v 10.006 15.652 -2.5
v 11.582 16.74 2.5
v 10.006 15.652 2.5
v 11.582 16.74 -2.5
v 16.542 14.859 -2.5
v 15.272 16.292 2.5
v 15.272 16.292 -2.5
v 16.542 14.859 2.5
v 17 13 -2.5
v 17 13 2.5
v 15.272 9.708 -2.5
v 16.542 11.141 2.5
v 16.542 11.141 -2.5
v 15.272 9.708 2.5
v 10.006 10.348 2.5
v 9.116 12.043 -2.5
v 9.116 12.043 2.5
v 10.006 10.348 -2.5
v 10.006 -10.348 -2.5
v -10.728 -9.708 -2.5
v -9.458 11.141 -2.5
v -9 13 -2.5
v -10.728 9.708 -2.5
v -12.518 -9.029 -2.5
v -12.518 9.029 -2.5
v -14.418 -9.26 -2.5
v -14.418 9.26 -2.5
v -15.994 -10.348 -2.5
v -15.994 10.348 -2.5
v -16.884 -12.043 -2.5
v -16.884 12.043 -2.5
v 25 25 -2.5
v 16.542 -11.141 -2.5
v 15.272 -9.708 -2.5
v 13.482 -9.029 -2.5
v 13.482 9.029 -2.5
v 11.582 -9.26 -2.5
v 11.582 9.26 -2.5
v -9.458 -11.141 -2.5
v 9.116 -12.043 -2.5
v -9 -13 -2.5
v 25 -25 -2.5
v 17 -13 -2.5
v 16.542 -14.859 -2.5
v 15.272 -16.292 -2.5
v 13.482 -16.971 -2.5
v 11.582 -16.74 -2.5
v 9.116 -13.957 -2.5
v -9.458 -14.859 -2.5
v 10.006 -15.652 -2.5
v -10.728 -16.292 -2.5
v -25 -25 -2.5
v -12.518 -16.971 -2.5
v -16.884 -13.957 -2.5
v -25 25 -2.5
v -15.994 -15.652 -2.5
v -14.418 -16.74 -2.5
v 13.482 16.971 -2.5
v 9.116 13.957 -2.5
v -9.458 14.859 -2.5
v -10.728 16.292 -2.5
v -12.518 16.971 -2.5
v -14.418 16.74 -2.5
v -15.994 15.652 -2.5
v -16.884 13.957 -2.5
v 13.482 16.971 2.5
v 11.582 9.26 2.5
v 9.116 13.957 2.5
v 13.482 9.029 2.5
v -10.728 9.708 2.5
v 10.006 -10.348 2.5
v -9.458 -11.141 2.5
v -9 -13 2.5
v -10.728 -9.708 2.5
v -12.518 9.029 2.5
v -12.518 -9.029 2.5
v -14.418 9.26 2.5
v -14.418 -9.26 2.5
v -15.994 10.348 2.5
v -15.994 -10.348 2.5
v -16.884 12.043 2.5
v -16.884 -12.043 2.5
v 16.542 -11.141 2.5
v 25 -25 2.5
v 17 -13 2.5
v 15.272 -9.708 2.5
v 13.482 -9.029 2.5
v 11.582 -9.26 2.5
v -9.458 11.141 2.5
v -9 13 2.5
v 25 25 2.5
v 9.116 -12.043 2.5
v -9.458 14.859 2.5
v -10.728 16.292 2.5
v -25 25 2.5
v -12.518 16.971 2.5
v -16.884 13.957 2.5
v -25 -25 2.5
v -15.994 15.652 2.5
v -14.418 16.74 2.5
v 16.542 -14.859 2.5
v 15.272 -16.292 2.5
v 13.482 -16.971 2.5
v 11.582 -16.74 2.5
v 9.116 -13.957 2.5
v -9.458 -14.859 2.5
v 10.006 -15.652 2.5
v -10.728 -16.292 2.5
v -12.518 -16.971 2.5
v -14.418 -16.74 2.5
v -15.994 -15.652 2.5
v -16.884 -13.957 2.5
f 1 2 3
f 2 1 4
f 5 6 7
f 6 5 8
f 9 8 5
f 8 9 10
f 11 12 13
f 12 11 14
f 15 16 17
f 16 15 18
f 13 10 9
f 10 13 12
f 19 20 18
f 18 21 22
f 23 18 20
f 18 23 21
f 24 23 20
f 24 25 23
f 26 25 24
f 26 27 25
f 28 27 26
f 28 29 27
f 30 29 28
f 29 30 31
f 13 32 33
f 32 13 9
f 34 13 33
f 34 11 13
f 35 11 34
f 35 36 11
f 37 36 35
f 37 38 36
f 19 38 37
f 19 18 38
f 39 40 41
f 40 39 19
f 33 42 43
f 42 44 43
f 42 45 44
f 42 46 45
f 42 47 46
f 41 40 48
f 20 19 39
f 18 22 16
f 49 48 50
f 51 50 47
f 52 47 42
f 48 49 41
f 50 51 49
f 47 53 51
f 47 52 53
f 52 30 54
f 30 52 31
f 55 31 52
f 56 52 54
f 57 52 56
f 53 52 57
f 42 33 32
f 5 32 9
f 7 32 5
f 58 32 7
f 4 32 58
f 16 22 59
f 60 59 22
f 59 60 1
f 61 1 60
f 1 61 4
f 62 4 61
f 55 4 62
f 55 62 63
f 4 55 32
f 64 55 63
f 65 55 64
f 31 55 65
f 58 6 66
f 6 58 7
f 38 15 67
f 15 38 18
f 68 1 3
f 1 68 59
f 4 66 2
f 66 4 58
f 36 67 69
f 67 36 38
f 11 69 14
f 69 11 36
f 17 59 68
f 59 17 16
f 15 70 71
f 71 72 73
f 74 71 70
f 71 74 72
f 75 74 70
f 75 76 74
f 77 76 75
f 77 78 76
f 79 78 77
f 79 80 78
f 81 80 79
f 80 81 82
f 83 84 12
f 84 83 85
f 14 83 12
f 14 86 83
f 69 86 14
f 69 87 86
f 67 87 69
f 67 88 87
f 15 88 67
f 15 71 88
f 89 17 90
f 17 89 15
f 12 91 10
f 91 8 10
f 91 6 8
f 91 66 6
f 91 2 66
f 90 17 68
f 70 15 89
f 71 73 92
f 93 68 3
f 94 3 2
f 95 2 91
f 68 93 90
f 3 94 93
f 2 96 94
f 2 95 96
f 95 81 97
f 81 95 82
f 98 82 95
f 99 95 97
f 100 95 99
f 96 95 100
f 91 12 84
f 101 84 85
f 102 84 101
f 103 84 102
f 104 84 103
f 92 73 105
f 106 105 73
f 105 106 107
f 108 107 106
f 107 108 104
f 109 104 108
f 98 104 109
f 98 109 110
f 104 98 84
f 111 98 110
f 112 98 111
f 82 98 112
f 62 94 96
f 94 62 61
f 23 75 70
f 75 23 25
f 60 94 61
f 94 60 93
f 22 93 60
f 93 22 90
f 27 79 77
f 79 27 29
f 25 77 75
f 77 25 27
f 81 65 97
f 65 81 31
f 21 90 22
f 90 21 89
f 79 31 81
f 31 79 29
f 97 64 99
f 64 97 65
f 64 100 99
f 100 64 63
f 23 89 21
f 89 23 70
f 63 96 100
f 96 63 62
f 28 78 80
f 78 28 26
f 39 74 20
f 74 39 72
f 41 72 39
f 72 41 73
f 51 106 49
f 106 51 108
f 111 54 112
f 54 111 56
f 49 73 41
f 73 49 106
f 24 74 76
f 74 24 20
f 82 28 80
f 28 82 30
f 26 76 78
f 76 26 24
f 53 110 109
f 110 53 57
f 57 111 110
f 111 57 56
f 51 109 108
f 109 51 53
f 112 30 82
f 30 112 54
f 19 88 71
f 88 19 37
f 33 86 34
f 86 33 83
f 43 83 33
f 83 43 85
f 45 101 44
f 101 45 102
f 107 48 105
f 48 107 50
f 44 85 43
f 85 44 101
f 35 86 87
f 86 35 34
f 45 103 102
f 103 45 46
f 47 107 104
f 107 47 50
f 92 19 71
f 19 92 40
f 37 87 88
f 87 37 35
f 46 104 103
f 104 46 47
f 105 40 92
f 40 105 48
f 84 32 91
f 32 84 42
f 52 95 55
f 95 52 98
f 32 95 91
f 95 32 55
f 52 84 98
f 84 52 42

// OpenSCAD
// Generated by SolidPython 1.1.3 on 2022-11-24 15:47:28


difference() {
	cube(center = true, size = [50, 50, 5]);
	union() {
		translate(v = [13.0000000000, 13.0000000000]) {
			cylinder(center = true, h = 5, r = 4.0000000000);
		}
		translate(v = [-13.0000000000, 13.0000000000]) {
			cylinder(center = true, h = 5, r = 4.0000000000);
		}
		translate(v = [-13.0000000000, -13.0000000000]) {
			cylinder(center = true, h = 5, r = 4.0000000000);
		}
		translate(v = [13.0000000000, -13.0000000000]) {
			cylinder(center = true, h = 5, r = 4.0000000000);
		}
	}
}
/***********************************************
*********      SolidPython code:      **********
************************************************
 
import solid
import pudb
from solid.utils import *
import viewscad
import subprocess
import os
import os.path as osp
import math
r = viewscad.Renderer(width=800, height=800)
def debug(model,f_name,path="/home/ts/code/projects/mfd/designs/debug"):
    solid.scad_render_to_file(model,osp.join(path,f_name)+".scad")
#generate position list of wells using offset from center
wells_pos_from_center_4 = lambda offset: [[-offset,offset],
                                        [offset, offset],
                                        [-offset, -offset],
                                        [offset, -offset]]
#wells_pos_from_center_2 = lambda offset: [[0,offset],
#                                        [0, -offset]]
wells_pos_from_center_2 = lambda offset: [[offset,0],
                                        [-offset,0]]

def wells_top_bottom(radius,height=None, positions = None, dxf = False):
    if positions is None:
        offset = radius+radius/2.0
        positions = wells_pos_from_center_2(offset)
    if dxf or (height is None):
        height = 0
    wells = []
    for position in positions:
        #make circle if making dxf
        if dxf:
            well_shape = solid.circle(r=radius, segments=64)
            well_shape = solid.translate([position[0],position[1]])(well_shape)
        #if stl make cylinder
        else:
            well_shape = solid.cylinder(r=radius, h=height, segments=64, center = True)
            well_shape = solid.translate([position[0],position[1],height/2.0])(well_shape)
        wells.append(well_shape)
    return  union()(*wells)

#place wells in four corners 
def four_corner(radius,height=None, positions = None, dxf = False):
    #if well pos not specified set
    #to equally spaced by half radius
    if positions is None:
        offset = radius+radius/2.0
        positions = wells_pos_from_center_4(offset)
    if dxf or (height is None):
        height = 0
    #make wells at positions with specified radius and height
    wells = []
    for position in positions:
        #make circle if making dxf
        if dxf:
            well_shape = solid.circle(r=radius, segments=64)
            well_shape = solid.translate([position[0],position[1]])(well_shape)
        #if stl make cylinder
        else:
            well_shape = solid.cylinder(r=radius, h=height, segments=64, center = True)
            well_shape = solid.translate([position[0],position[1],height/2.0])(well_shape)
        wells.append(well_shape)
    return  union()(*wells)

#generate channels 
def make_channels(length,width,height=0,num_chans=1,max_chans=None,spacing=None, dxf = False,
                  rotate_channels=False):
    if dxf or (height is None):
        height = 0
    #if channel gap not defined, is equal to
    if spacing is None: spacing = width
    #calculate number of channels if fitting max num within given width
    if not max_chans is None:
        import math
        num_chans = math.floor((max_chans-spacing)/(width+spacing))
    #get total width of channel section  
    total_width = (width*num_chans)+(spacing*(num_chans-1))

    #make template channel
    #if rotate_channels: width, length = length, width
    if dxf:
        channel_t = solid.square([length,width],center = True)
    else:
        channel_t = solid.cube([length,width,height], center = True)

    #if number channels is even, offset the first channel to center its gap
    if num_chans % 2 == 0: centering = -(width/2.0+spacing/2.0)
    else: centering = 0
    #move template channel up to align bottom at z = 0 
    #and offset center if necessary
    if dxf:
        channel_t = solid.translate([0,centering])(channel_t)
    else:
        channel_t = solid.translate([0,centering,height/2.0])(channel_t)

    #if rotate_channels: length,width = width,length
    #start making the channels
    channels = []
    for i in range(num_chans):
        #if i=0 there is no translation
        #if i=1, we make the first channel adjacent to second
        direction = i

        #if i>=1, we add channels alternating left and right
        if i >= 1:
            direction = -(i/2.0)
            if i % 2 == 1: direction = (-direction)+0.5
                
        #make channel at right position and add it to channel list
        translation_coords = [0,direction*(width+spacing)]
        #if rotate_channels: translation_coords = [direction*(width+spacing),0]
        if dxf:
            channel = solid.translate(translation_coords)(channel_t)
        else:
            channel = solid.translate([*translation_coords,0])(channel_t)
        channels.append(channel)
    
    #group all channels as one object
    channels = union()(*channels)
    #compute the x,y,z dimensions in order to pass as arguments 
    #for construction of other parts of device (such as the chambers)
    measurements = {'x':(length/2.0,-length/2.0),
                    'y':(total_width/2.0,-total_width/2.0)}
    if not dxf:
        measurements['z'] = (height,0)
    if rotate_channels:
        channels = solid.rotate(90)(channels)
        measurements['x'],measurements['y']=measurements['y'],measurements['x']
    return channels,measurements

def make_chambers(msrs,height=None,extra=0,len_until=None,width=None, dxf = False):
    #computes x,y,z length
    total = lambda x : abs(x[0]) + abs(x[1])
    
    #if specific height if specified
    #otherwise use same height as channels
    if dxf:
        pass
    elif not height is None:
        msrs['z'] = (height,0)
    else:
        msrs['z'] = (0,0)
        
    #make copy of measurements from channels to modify chamber dimensions 
    #and add length to chambers as specified
    chamber_dims = msrs.copy()
    #calculate length of chamber to reach specified offset
    if not len_until is None:
        chamber_len = len_until-(msrs['x'][0])
    #or add specified length to channel length (if not specified, adds 0)
    else:
        chamber_len = msrs['x'][0]+extra
    #set the chamber length based 
    chamber_dims['x'] = (chamber_len/2.0,-(chamber_len/2.0))
    #compute final dimensions of chamber
    if not width is None:
        chamber_dims['y'] = (width/2.0,-width/2.0)
    chamber_dims = [total(size) for size in chamber_dims.values()]
        
    #calculate chamber translation offset to place adjacent to channels
    chamber_trslt = msrs['x'][0]+(chamber_len/2.0)
    #compute chamber translation coordinates to align with channels
    #x = 1 moves chamber above channels
    #x = -1 moves chamber below channels
    if dxf:
        trslt = lambda x : [x*(chamber_trslt),0]
    else:
        trslt = lambda x : [x*(chamber_trslt),0,msrs['z'][0]/2.0]
    
    #function to make chamber at top or at bottom 
    if dxf:
        move = lambda x : solid.translate(trslt(x))(solid.square(chamber_dims, center = True) )
    else:
        move = lambda x : solid.translate(trslt(x))(solid.cube(chamber_dims,center = True))
    #make top and bottom chambers and return them as grouped
    top = move(1)
    bottom = move(-1)
    #chambers=solid.rotate(90)(solid.union()(top,bottom))
    chambers=(solid.union()(top,bottom))

    return chambers

#create alignment features 
def alignment_features(unit,dims,grid_size, mask_size = None, alignment = "hollow", units_from_center = (2.5,2.5), corner_len=None):
    width = grid_size[0]*dims[0]
    length = grid_size[1]*dims[1]
    if mask_size is None and corner_len is None:
        corner_len = (dims[0] + dims[1]) /2 / 8
    corner = lambda thickness_div : solid.union()( solid.square([corner_len,corner_len/thickness_div],center=False), solid.square([corner_len/thickness_div,corner_len],center=False) )
    
    def make_full(thickness_div):
        thickness = corner_len/thickness_div
        tr = solid.translate([0, 0, 0 ])(solid.rotate(180)(corner(thickness_div)))
        tr = solid.translate([thickness/2,thickness/2,0])(tr)
        bl = solid.translate([0, 0, 0 ])(solid.rotate(0)(corner(thickness_div)))
        bl = solid.translate([-thickness/2,-thickness/2,0])(bl)
        return solid.union()(tr,bl)
    
    def make_hollow(thickness_div):
        thickness = corner_len/(thickness_div/2)
        inner = make_full(thickness_div)
        outer = make_full(thickness_div/2)
        hollow = outer - inner 
        return hollow
    
    center = (width /2 , length/2)
    mask_pos = lambda x,y : (center[0] + x*(float(units_from_center[0])*dims[0]), center[1] + y*(float(units_from_center[1])*dims[1]))
    positions = []
    positions.append(mask_pos(1,0))
    positions.append(mask_pos(0,1))
    positions.append(mask_pos(-1,0))
    positions.append(mask_pos(0,-1))
    make_mask = lambda mtype : make_hollow(8) if mtype == "hollow" else make_full(8)
    masks = [ solid.translate([*position,0])(make_mask(alignment)) for position in positions]
    
    solid.scad_render_to_file(solid.union()(*masks),"./designs/open_chamber/masks.scad")
    #return unit - solid.union()(*masks)
    return solid.union()(*masks,unit)

def create_outline(thickness, array, dims, grid_size,):
    width = grid_size[0]*dims[0] + thickness *2
    length = grid_size[1]*dims[1] + thickness *2
    outer = solid.translate([-thickness, -thickness,0])(solid.square([width, length]))
    return outer-array

def create_wall(wall_thickness, outline_thickness, dims, grid_size, wall_height = 2000, dxf = False):
    inner_width = grid_size[0]*dims[0] + outline_thickness *2
    inner_length = grid_size[1]*dims[1] + outline_thickness *2
    outer_width = inner_width + wall_thickness * 2
    outer_length = inner_length + wall_thickness * 2
    outer_pos_x = -outline_thickness-wall_thickness
    outer_pos_y = -outline_thickness-wall_thickness
    inner_pos_x = -outline_thickness
    inner_pos_y = -outline_thickness
    if dxf:
        inner_wall = solid.translate([inner_pos_x,
                                      inner_pos_y,
                                      0])(solid.square([inner_width, inner_length]))
        outer_wall = solid.translate([outer_pos_x,
                                      outer_pos_y,
                                      0])(solid.square([outer_width, outer_length]))

        return outer_wall-inner_wall
    else:
        inner_wall = solid.translate([inner_pos_x,
                                      inner_pos_y,
                                      0])(solid.cube([inner_width, inner_length,wall_height]))
        outer_wall = solid.translate([outer_pos_x,
                                      outer_pos_y,
                                      0])(solid.cube([outer_width, outer_length,wall_height]))

        return outer_wall-inner_wall, {'wall_height': wall_height,
                                       'wall_thickness': wall_thickness,
                                       'inner_width':inner_width,
                                       'inner_length': inner_length,
                                       'outer_width': outer_width,
                                       'outer_length': outer_length,
                                       'outer_pos_x' : outer_pos_x,
                                       'outer_pos_y' : outer_pos_y,
                                       'inner_pos_x' : inner_pos_x,
                                       'inner_pos_y' : inner_pos_y}

def create_thicker_wall(wall_thickness, outer_wall_offset, wall_dims, dims, grid_size, height_start = .2, height_end=2, dxf = False):
    addon_wall,thicker_wall_dims = create_wall(wall_thickness, outer_wall_offset, dims, grid_size, wall_height=height_end-height_start, dxf = False)
    addon_wall = solid.translate([0,0,height_start])(addon_wall)

    thicker_wall_dims['wall_height'] = height_end
    thicker_wall_dims['wall_thickness'] = wall_dims['wall_thickness'] + wall_thickness
    return addon_wall, thicker_wall_dims
 
def add_lock_to_wall(wall,wall_dims,y_offset = 0,cut_ratio=0.7,L_length=3, gap_ratio=0.05, axis="x",width_ratio=1/2):
    # Makes L shape
    def make_L(max_length,length_thickness,max_width,width_thickness,height,y_offset):
        length = solid.cube([max_length,length_thickness,height])
        width = solid.cube([width_thickness,max_width,height])
        width = solid.translate([max_length-(width_thickness),0,0])(width)
        L = solid.union()(width,length)
        debug(L,"L")
        if axis == "x":
            L = solid.rotate(-90)(L)
            L = solid.translate([0,max_length,0])(L)
        else:
            L = solid.rotate(-180)(L)
            L = solid.translate([max_length,max_width,0])(L)
        return solid.translate([0,0,y_offset])(L)
    
    lock_length = L_length
    lock_width = wall_dims['wall_thickness']*width_ratio
    lock_length_thickness = lock_width/2
    lock_width_thickness = lock_width/2
    L_lock = make_L(lock_length,lock_length_thickness,lock_width,lock_width_thickness, wall_dims['wall_height']-y_offset, y_offset)
    
    margin_space = lock_length - lock_length*(1-gap_ratio)
    key_length = lock_length-margin_space
    key_length_thickness = lock_length_thickness-(margin_space*2)
    key_width = lock_width-(margin_space*2)
    key_width_thickness = lock_width_thickness-(margin_space*2)
    L_key = make_L(key_length,key_length_thickness,key_width,key_width_thickness, wall_dims['wall_height']-y_offset, y_offset)
    L_key = solid.translate([margin_space,margin_space,0])(L_key)
    L = solid.union()(L_lock,L_key)
    debug(L,"L")
    
    #Make cube to be used as negative to split frame in a half
    #Can choose if making left or right negative, specify ratio of split
    def make_negative(right,cut_ratio):
        if axis == "x":
            if right:
                length = wall_dims['outer_length']*(1-cut_ratio)
                pos_x = wall_dims['outer_pos_x']+(wall_dims['outer_length']*cut_ratio)
            else:
                length = wall_dims['outer_length']*(cut_ratio)
                pos_x = wall_dims['outer_pos_x'] 
            negative = solid.cube([wall_dims['outer_width'],length, wall_dims['wall_height']])
            negative = solid.translate([wall_dims['outer_pos_y'],pos_x,0])(negative)
        else:
            if right:
                length = wall_dims['outer_width']*(1-cut_ratio)
                pos_x = wall_dims['outer_pos_y']+(wall_dims['outer_width']*cut_ratio)
            else:
                length = wall_dims['outer_width']*(cut_ratio)
                pos_x = wall_dims['outer_pos_y'] 
            negative = solid.cube([length,wall_dims['outer_length'], wall_dims['wall_height']])
            negative = solid.translate([pos_x,wall_dims['outer_pos_x'],0])(negative)
        return negative, pos_x, length 
                      
    #Make negatives
    negative_right, right_half_pos_x, right_half_length = make_negative(True,cut_ratio)
    negative_left, left_half_pos_x, right_half_length = make_negative(False,cut_ratio)
    #Make halves
    left_half = solid.difference()(wall,negative_right)
    right_half = solid.difference()(wall,negative_left)
    def place_L(L, L_length,L_width):
        #Place L on top wall       
        offset_to_center = (wall_dims['wall_thickness']-L_width)/2
        if axis == "x":
            y_pos_top = (wall_dims['outer_pos_y'] +
                    wall_dims['outer_width'] - 
                    L_width - offset_to_center)
            top_L = solid.translate([y_pos_top,
                                     right_half_pos_x-(L_length),
                                     0])(L)
            #Place L on bottom wall       
            y_pos_bottom = wall_dims['outer_pos_y']+offset_to_center
            bottom_L = solid.translate([y_pos_bottom,
                                        right_half_pos_x-L_length,
                                        0])(L)
        else:
            y_pos_top = (wall_dims['outer_pos_x'] +
                    wall_dims['outer_length'] -
                    (L_width+offset_to_center))
            top_L = solid.translate([right_half_pos_x-L_length,
                                     y_pos_top,
                                     0])(L)
            #Place L on bottom wall       
            y_pos_bottom = wall_dims['outer_pos_y']+offset_to_center
            bottom_L = solid.translate([right_half_pos_x-L_length,
                                        y_pos_bottom,
                                        0])(L)
        return bottom_L, top_L
    #Make complimentary L pieces through union and differences
    #Make Lock
    bottom_L_lock, top_L_lock = place_L(L_lock,L_length,lock_width)
    left_half = solid.difference()(left_half,bottom_L_lock)
    left_half = solid.difference()(left_half,top_L_lock)
    #Make Key
    bottom_L_key, top_L_key = place_L(L_key,L_length,lock_width)
    right_half = solid.union()(right_half,bottom_L_key)
    right_half = solid.union()(right_half,top_L_key)
    return left_half, right_half


#build a row x col grid of containment units
def make_unit_array(unit,dims,grid_size, dxf = False, alignment = None, mask_size = None,
                    units_from_center = None,alignment_offset=None, alignment_mark_size=1):
    units = []
    for col in range(grid_size[1]):
        for row in range(grid_size[0]):
            if dxf:
                units.append(solid.translate([row*dims[0],col*dims[1]])(unit))
            else:
                units.append(solid.translate([row*dims[0],col*dims[1],dims[2]/2.0])(unit))
    array = solid.union()(*units)
    if (not alignment is None) and dxf:
        if not alignment_offset is None:
            array = solid.translate([alignment_offset[0],alignment_offset[1]])(array)
        array = alignment_features(array,dims, grid_size, alignment = alignment, mask_size = None, units_from_center = units_from_center,corner_len=alignment_mark_size)
        if not alignment_offset is None:
            array = solid.translate([-alignment_offset[0],-alignment_offset[1]])(array)
    return array


def make_taylor(wells_pos = wells_pos_from_center_4(2.25), well_rad = 1.5 ,
                well_height = 2, chan_w = 0.01, chan_l = 1, chan_h = 0.010 ,
                chan_gap = 0.040, max_chans = None,num_chans=100, chamber_height  = 0.100,
                columns = 1, rows = 1, chamber_len_until=2.25, add_channels = True, add_wells = True, 
                add_chambers = True, save_path = "./", alignment = None, units_from_center = 2,
                mask_size = None, render_stl = False, outline_thickness = 0.050, dxf = True,
                wall_height = 15, wall_thickness = 0.95, casing_x=9, casing_y=9, casing_z=0,rotate_units=0):

    dims = [casing_x, casing_y, casing_z]
    wells = four_corner(well_rad,well_height, dxf = dxf, positions = wells_pos)
    debug(wells,"wells")
    channels, msrs = make_channels(chan_l,chan_w,chan_h,dxf=dxf, spacing = chan_gap, max_chans=max_chans,num_chans=num_chans)
    debug(channels,"channels")
    chambers = make_chambers(msrs,dxf = dxf, height=chamber_height,len_until=chamber_len_until)
    debug(chambers,"chambers")

    #add together and render
    device_parts = []
    if add_channels:
        device_parts.append(channels)
    if add_wells:
        device_parts.append(wells)
    if add_chambers:
        device_parts.append(chambers)
    device=union()(*device_parts)
    device = rotate(rotate_units)(device)

    device=solid.translate([dims[0]/2.0,dims[1]/2.0,0])(device)
    channels = rotate(rotate_units)(channels)
    channels=solid.translate([dims[0]/2,dims[1]/2,0])(channels)
    chambers_wells = union()(wells,chambers)
    chambers_wells = rotate(rotate_units)(chambers_wells)
    chambers_wells=solid.translate([dims[0]/2,dims[1]/2,0])(chambers_wells)

    file_name = str(rows)+'x'+str(columns)+'_units_'
    grid_size = [rows,columns]

    if alignment:
        alignment="full"
    device = make_unit_array(device,dims,grid_size, dxf=dxf, alignment = alignment,
                                 units_from_center = units_from_center)
    channels = make_unit_array(channels,dims,grid_size, dxf=dxf, alignment = alignment,
                                 units_from_center = units_from_center)
    if alignment=="full":
        alignment="hollow"

    chambers_wells = make_unit_array(chambers_wells,dims,grid_size, dxf=dxf, alignment = alignment,
                                 units_from_center =units_from_center)

    def save_model(model,prefix):
        model_fname = os.path.abspath(save_path+prefix+"_"+file_name+".scad")
        solid.scad_render_to_file(model,model_fname)
        return model_fname

    wells_fname = save_model(wells,"wells")
    channels_fname = save_model(channels,"channels")
    device_fname = save_model(device,"device")
    chambers_wells_fname = save_model(chambers_wells,"chambers_wells")
    return (chambers_wells,chambers_wells_fname), (channels,channels_fname), (device,device_fname)

def make_device(design='open',rows=8,columns=6,wells_pos = 4.5, well_rad=3.2,well_height=0.1,
                chan_l=1,chan_w=0.01,chan_h=0.01,chan_gap=0.015,num_chans=101,dxf=True,save_path="./designs/open_chamber/",
                casing_x=9.0,casing_y=18.0,casing_z=0,rotate_units=90,units_from_center=(3,1),chamber_len_until=4.5,
                chamber_width=None,alignment=True, add_wells=True, add_channels=True,add_chambers=True):

    dims = [casing_x, casing_y, casing_z]
    if design == "open":
        wells_pos=wells_pos_from_center_2(wells_pos)
        wells = wells_top_bottom(well_rad,height=well_height, dxf = dxf, positions = wells_pos)
    elif design == "closed":
        wells_pos=wells_pos_from_center_4(wells_pos)
        wells = four_corner(well_rad,well_height, dxf = dxf, positions = wells_pos)
    else:
        print(design+" is not a valid design.\n Choose valid design: 'open' or 'closed'")
        exit()
    wells = rotate(rotate_units)(wells)
    wells=solid.translate([dims[0]/2,dims[1]/2,0])(wells)



    channels, msrs = make_channels(chan_l,chan_w,chan_h,dxf=dxf, spacing = chan_gap, num_chans=num_chans,rotate_channels=False)
    channels = rotate(rotate_units)(channels)
    channels=solid.translate([dims[0]/2,dims[1]/2,0])(channels)

    chambers=make_chambers(msrs,height=None,extra=0,len_until=chamber_len_until, width=chamber_width,dxf = dxf)
    chambers = rotate(rotate_units)(chambers)
    chambers=solid.translate([dims[0]/2,dims[1]/2,0])(chambers)

    device_parts = []
    if add_channels:
        device_parts.append(channels)
    if add_wells:
        device_parts.append(wells)
    if add_chambers:
        device_parts.append(chambers)
    device = union()(*device_parts)
    #device = rotate(rotate_units)(device)
    #device=solid.translate([dims[0]/2.0,dims[1]/2.0,0])(device)

    chambers_wells = []
    if add_chambers:
        chambers_wells.append(chambers)
    if add_wells:
        chambers_wells.append(wells)
    chambers_wells = union()(*chambers_wells)
    #chambers_wells = union()(wells,chambers)
    #chambers_wells = rotate(rotate_units)(chambers_wells)
    #chambers_wells=solid.translate([dims[0]/2,dims[1]/2,0])(chambers_wells)

    file_name = str(rows)+'x'+str(columns)+'_units_'

    grid_size = [rows,columns]
    if alignment:
        alignment="full"
    device = make_unit_array(device,dims,grid_size, dxf=dxf, alignment = alignment,
                                 units_from_center = units_from_center)
    channels = make_unit_array(channels,dims,grid_size, dxf=dxf, alignment = alignment,
                                 units_from_center = units_from_center)
    if alignment=="full":
        alignment="hollow"

    chambers_wells = make_unit_array(chambers_wells,dims,grid_size, dxf=dxf, alignment = alignment,
                                 units_from_center =units_from_center)

    def save_model(model,prefix):
        model_fname = os.path.abspath(save_path+prefix+"_"+file_name+".scad")
        solid.scad_render_to_file(model,model_fname)
        return model_fname

    wells_fname = save_model(wells,"wells")
    channels_fname = save_model(channels,"channels")
    device_fname = save_model(device,"device")
    chambers_wells_fname = save_model(chambers_wells,"chambers_wells")
    return (chambers_wells,chambers_wells_fname), (channels,channels_fname), (device,device_fname)


def make_open_chamber(rows=8,columns=6,wells_pos = wells_pos_from_center_2(4.5), well_rad=3.2,well_height=0.1,
                      chan_l=1,chan_w=0.01,chan_h=0.01,chan_gap=0.015,num_chans=101,dxf=True,save_path="./designs/open_chamber/",
                      casing_x=9.0,casing_y=18.0,casing_z=0,rotate_units=90,units_from_center=(3,1),chamber_len_until=4.5,
                      chamber_width=None,alignment=True, add_wells=True, add_channels=True,add_chambers=True):

    dims = [casing_x, casing_y, casing_z]
    wells = wells_top_bottom(well_rad,height=well_height, dxf = dxf, positions = wells_pos)
    channels, msrs = make_channels(chan_l,chan_w,chan_h,dxf=dxf, spacing = chan_gap, num_chans=num_chans,rotate_channels=False)
    chambers=make_chambers(msrs,height=None,extra=0,len_until=chamber_len_until, width=chamber_width,dxf = dxf)
    debug(chambers,"chambers")
    device_parts = []
    if add_channels:
        device_parts.append(channels)
    if add_wells:
        device_parts.append(wells)
    if add_chambers:
        device_parts.append(chambers)
    device = union()(*device_parts)
    device = rotate(rotate_units)(device)
    device=solid.translate([dims[0]/2.0,dims[1]/2.0,0])(device)
    channels = rotate(rotate_units)(channels)
    channels=solid.translate([dims[0]/2,dims[1]/2,0])(channels)
    chambers_wells = union()(wells,chambers)
    chambers_wells = rotate(rotate_units)(chambers_wells)
    chambers_wells=solid.translate([dims[0]/2,dims[1]/2,0])(chambers_wells)

    file_name = str(rows)+'x'+str(columns)+'_units_'

    grid_size = [rows,columns]
    if alignment:
        alignment="full"
    device = make_unit_array(device,dims,grid_size, dxf=dxf, alignment = alignment,
                                 units_from_center = units_from_center)
    channels = make_unit_array(channels,dims,grid_size, dxf=dxf, alignment = alignment,
                                 units_from_center = units_from_center)
    if alignment=="full":
        alignment="hollow"

    chambers_wells = make_unit_array(chambers_wells,dims,grid_size, dxf=dxf, alignment = alignment,
                                 units_from_center =units_from_center)

    def save_model(model,prefix):
        model_fname = os.path.abspath(save_path+prefix+"_"+file_name+".scad")
        solid.scad_render_to_file(model,model_fname)
        return model_fname

    wells_fname = save_model(wells,"wells")
    channels_fname = save_model(channels,"channels")
    device_fname = save_model(device,"device")
    chambers_wells_fname = save_model(chambers_wells,"chambers_wells")
    return (chambers_wells,chambers_wells_fname), (channels,channels_fname), (device,device_fname)

def to_dxf(scad_path):
    dxf_path = scad_path.replace(".scad",".dxf")
    subprocess.call(["openscad", "-o", dxf_path, scad_path])
    import ezdxf
    temp_dxf = ezdxf.readfile(dxf_path)
    temp_dxf.saveas(dxf_path)

#def make_walls(diameter,thickness,grid_size,dims,height=20,segments=256,make_inner=True):
#    wafer_wall_out = solid.cylinder(r=diameter/2,h=height, segments=segments)
#    wafer_wall_in = solid.cylinder(r=(diameter/2-thickness),h=height, segments=segments)
#    wafer_wall = solid.difference()(wafer_wall_out,wafer_wall_in)
#    wafer_wall = solid.translate([grid_size[1]*dims[1]/2.0,grid_size[0]*dims[0]/2.0])(wafer_wall)
#
#    vertical_wall_length = grid_size[1]*dims[1]
#    horizontal_wall_length = grid_size[0]*dims[0]
#    vertical_wall = solid.cube([vertical_wall_length,thickness,height],center = True)
#    vertical_wall = solid.translate([vertical_wall_length/2,0,height/2])(vertical_wall)
#    horizontal_wall = solid.cube([thickness,horizontal_wall_length,height],center = True)
#    horizontal_wall = solid.translate([0,vertical_wall_length/2,height/2])(horizontal_wall)
#    walls = []
#    walls.append(horizontal_wall)
#    walls.append(vertical_wall)
#    for col in range(grid_size[1]):
#        if col == grid_size[1]-1: 
#            walls.append(solid.translate([0,(col+1)*dims[1]])(vertical_wall))
#        elif col > 0 and col < grid_size[1]-1 and make_inner==True:
#            walls.append(solid.translate([0,(col+1)*dims[1]])(vertical_wall))
#    for row in range(grid_size[0]):
#        if row == grid_size[0]-1: 
#            walls.append(solid.translate([(row+1)*dims[0],0])(horizontal_wall))
#        elif row > 0 and row < grid_size[0]-1 and make_inner==True:
#            walls.append(solid.translate([(row+1)*dims[0],0])(horizontal_wall))
#    walls = union()(*walls)
#    wafer_walls = union()(walls,wafer_wall)
#    return walls,wafer_wall,wafer_walls

def make_walls(diameter,thickness,grid_size,dims,height=20,segments=256,make_inner=True,padx=0,pady=0):
    wafer_wall_out = solid.cylinder(r=diameter/2,h=height, segments=segments)
    wafer_wall_in = solid.cylinder(r=(diameter/2-thickness),h=height, segments=segments)
    wafer_wall = solid.difference()(wafer_wall_out,wafer_wall_in)
    wafer_wall = solid.translate([grid_size[1]*dims[1]/2.0,grid_size[0]*dims[0]/2.0])(wafer_wall)

    vertical_wall_length = grid_size[0]*dims[0]+padx
    horizontal_wall_length = grid_size[1]*dims[1]+pady
    vertical_wall = solid.cube([vertical_wall_length,thickness,height],center = True)
    vertical_wall = solid.translate([vertical_wall_length/2-pady/2,-padx/2,height/2])(vertical_wall)
    horizontal_wall = solid.cube([thickness,horizontal_wall_length,height],center = True)
    horizontal_wall = solid.translate([-pady/2,horizontal_wall_length/2-padx/2,height/2])(horizontal_wall)
    walls = []
    walls.append(horizontal_wall)
    walls.append(vertical_wall)
    for col in range(grid_size[1]):
        if col == grid_size[1]-1: 
            walls.append(solid.translate([0,(col+1)*dims[1]+pady])(vertical_wall))
        elif col > 0 and col < grid_size[1]-1 and make_inner==True:
            walls.append(solid.translate([0,(col+1)*dims[1]])(vertical_wall))
    for row in range(grid_size[0]):
        if row == grid_size[0]-1: 
            walls.append(solid.translate([(row+1)*dims[0]+padx,0])(horizontal_wall))
        elif row > 0 and row < grid_size[0]-1 and make_inner==True:
            walls.append(solid.translate([(row+1)*dims[0],0])(horizontal_wall))
    walls = union()(*walls)
    wafer_walls = union()(walls,wafer_wall)
    return walls,wafer_wall,wafer_walls

def save_model(model,base_path,base_name,dxf=True):
    if not os.path.exists(base_path):
        os.makedirs(base_path)
    dxf_path=osp.join(base_path,base_name+".scad")
    solid.scad_render_to_file(model,osp.join(dxf_path))
    if dxf:
        to_dxf(dxf_path)

def make_wafer(diameter,flat_len,thickness):
    wafer = solid.cylinder(r1=diameter/2,r2=diameter/2,h=thickness,segments=512,)()
    x_start_flat=(flat_len/2)
    y_start_flat = math.sqrt(((diameter/2)**2) - (x_start_flat**2) )
    height_delete_flat=diameter/2-y_start_flat
    flat_delete = solid.cube([flat_len,height_delete_flat,thickness],center=False)()
    flat_delete = solid.translate([-flat_len/2,y_start_flat,0])(flat_delete)
    wafer = solid.difference()(wafer,flat_delete)
    wafer = solid.rotate(90)(wafer)
    return wafer

def add_wafer_to_mask(wafer_size,flat_len,mask,grid_size,dims,wafer_line_thickness=0.1,outer_mask_thickness=5,alignment_offset=None):
    def make_wafer_mask(wafer_size,flat_len):
        wafer_mask = make_wafer(wafer_size,flat_len,1)
        wafer_mask = solid.projection()(wafer_mask)
        wafer_mask = solid.translate([grid_size[0]*dims[0]/2.0,grid_size[1]*dims[1]/2.0])(wafer_mask)
        if not alignment_offset is None:
            wafer_mask = solid.translate([-alignment_offset[0],-alignment_offset[1]])(wafer_mask)
        return wafer_mask

    inner_wafer_line_mask = make_wafer_mask(wafer_size-wafer_line_thickness/2,flat_len)
    outer_wafer_line_mask = make_wafer_mask(wafer_size+wafer_line_thickness/2,flat_len)
    outer_wafer_mask = make_wafer_mask(wafer_size+outer_mask_thickness,flat_len)
    outer_wafer_mask = solid.difference()(outer_wafer_mask,outer_wafer_line_mask)
    wafer_mask = solid.union()(outer_wafer_mask,inner_wafer_line_mask)

    return solid.difference()(wafer_mask,mask)

def make_posts(post_shape,post_height):
    posts = solid.linear_extrude(height=post_height)(post_shape)
    return posts

def make_wafer_empty(diameter,flat_len,thickness,margin,notch_len=20,notch_height=5,oversize=1.01):
    diameter*=oversize
    flat_len*=oversize
    wafer = make_wafer(diameter,flat_len,thickness)
    holder = solid.cylinder(r1=diameter/2+margin,r2=diameter/2+margin,h=thickness,segments=512)()
    holder = solid.difference()(holder,wafer)

    x_start_flat=(flat_len/2)
    y_start_flat = math.sqrt(((diameter/2)**2) - (x_start_flat**2) )
    height_delete_flat=diameter/2-y_start_flat
    notch = solid.cube([notch_len,notch_height,thickness],center=False)()
    notch = solid.translate([-notch_len/2,y_start_flat,0])(notch)
    notch = solid.rotate(90)(notch)
    return solid.difference()(holder,notch)

def wafer_print_calibration(diameter,thickness,height,z_offset):
    circles = []
    radii = []
    radii.append(diameter/2.0*0.8)
    radii.append(diameter/2.0*0.6)
    radii.append(diameter/2.0*0.4)
    radii.append(diameter/2.0*0.2)
    for radius in radii:
        inner = solid.cylinder(r1=radius-(thickness/2.0),r2=radius-(thickness/2.0),h=thickness,segments=512,)()
        outer = solid.cylinder(r1=radius+(thickness/2.0),r2=radius+(thickness/2.0),h=thickness,segments=512,)()
        diff = solid.difference()(outer,inner)
        circles.append(diff)
    circles = solid.union()(*circles)
    circles = solid.translate([0,0,z_offset])(circles)
    return circles

def make_rack(wells,dims,grid_size,alignment_offset,rack_x,rack_y,rack_thickness,bolt_width):

    #get X and Y dimensions of gride of pipette tips
    X_len = dims[0]*grid_size[0]
    Y_len = dims[1]*grid_size[1]
    #make rack
    rack = solid.cube([rack_x,rack_y,rack_thickness],center=True)

    #add bolt holes
    bolt_hole=solid.cylinder(r=bolt_width/2,h=rack_thickness,center=True)()
    bolt_holes = []
    bolt_holes.append(solid.translate([rack_x/2-1.5*bolt_width,rack_y/2-1.5*bolt_width])(bolt_hole))
    bolt_holes.append(solid.translate([-rack_x/2+1.5*bolt_width,rack_y/2-1.5*bolt_width])(bolt_hole))
    bolt_holes.append(solid.translate([-rack_x/2+1.5*bolt_width,-rack_y/2+1.5*bolt_width])(bolt_hole))
    bolt_holes.append(solid.translate([rack_x/2-1.5*bolt_width,-rack_y/2+1.5*bolt_width])(bolt_hole))
    bolt_holes = solid.union()(*bolt_holes)
    rack=solid.difference()(rack,bolt_holes)
    rack_support = rack

    #center rack with pipette holes
    rack = solid.translate([0,0,rack_thickness/2])(rack)
    rack = solid.translate([X_len/2,Y_len/2])(rack)
    rack = solid.translate([-alignment_offset[0],-alignment_offset[1]])(rack)
    wells = solid.linear_extrude(height=rack_thickness)(wells)
    rack = solid.difference()(rack,wells)
    return rack, rack_support





 
 
************************************************/
